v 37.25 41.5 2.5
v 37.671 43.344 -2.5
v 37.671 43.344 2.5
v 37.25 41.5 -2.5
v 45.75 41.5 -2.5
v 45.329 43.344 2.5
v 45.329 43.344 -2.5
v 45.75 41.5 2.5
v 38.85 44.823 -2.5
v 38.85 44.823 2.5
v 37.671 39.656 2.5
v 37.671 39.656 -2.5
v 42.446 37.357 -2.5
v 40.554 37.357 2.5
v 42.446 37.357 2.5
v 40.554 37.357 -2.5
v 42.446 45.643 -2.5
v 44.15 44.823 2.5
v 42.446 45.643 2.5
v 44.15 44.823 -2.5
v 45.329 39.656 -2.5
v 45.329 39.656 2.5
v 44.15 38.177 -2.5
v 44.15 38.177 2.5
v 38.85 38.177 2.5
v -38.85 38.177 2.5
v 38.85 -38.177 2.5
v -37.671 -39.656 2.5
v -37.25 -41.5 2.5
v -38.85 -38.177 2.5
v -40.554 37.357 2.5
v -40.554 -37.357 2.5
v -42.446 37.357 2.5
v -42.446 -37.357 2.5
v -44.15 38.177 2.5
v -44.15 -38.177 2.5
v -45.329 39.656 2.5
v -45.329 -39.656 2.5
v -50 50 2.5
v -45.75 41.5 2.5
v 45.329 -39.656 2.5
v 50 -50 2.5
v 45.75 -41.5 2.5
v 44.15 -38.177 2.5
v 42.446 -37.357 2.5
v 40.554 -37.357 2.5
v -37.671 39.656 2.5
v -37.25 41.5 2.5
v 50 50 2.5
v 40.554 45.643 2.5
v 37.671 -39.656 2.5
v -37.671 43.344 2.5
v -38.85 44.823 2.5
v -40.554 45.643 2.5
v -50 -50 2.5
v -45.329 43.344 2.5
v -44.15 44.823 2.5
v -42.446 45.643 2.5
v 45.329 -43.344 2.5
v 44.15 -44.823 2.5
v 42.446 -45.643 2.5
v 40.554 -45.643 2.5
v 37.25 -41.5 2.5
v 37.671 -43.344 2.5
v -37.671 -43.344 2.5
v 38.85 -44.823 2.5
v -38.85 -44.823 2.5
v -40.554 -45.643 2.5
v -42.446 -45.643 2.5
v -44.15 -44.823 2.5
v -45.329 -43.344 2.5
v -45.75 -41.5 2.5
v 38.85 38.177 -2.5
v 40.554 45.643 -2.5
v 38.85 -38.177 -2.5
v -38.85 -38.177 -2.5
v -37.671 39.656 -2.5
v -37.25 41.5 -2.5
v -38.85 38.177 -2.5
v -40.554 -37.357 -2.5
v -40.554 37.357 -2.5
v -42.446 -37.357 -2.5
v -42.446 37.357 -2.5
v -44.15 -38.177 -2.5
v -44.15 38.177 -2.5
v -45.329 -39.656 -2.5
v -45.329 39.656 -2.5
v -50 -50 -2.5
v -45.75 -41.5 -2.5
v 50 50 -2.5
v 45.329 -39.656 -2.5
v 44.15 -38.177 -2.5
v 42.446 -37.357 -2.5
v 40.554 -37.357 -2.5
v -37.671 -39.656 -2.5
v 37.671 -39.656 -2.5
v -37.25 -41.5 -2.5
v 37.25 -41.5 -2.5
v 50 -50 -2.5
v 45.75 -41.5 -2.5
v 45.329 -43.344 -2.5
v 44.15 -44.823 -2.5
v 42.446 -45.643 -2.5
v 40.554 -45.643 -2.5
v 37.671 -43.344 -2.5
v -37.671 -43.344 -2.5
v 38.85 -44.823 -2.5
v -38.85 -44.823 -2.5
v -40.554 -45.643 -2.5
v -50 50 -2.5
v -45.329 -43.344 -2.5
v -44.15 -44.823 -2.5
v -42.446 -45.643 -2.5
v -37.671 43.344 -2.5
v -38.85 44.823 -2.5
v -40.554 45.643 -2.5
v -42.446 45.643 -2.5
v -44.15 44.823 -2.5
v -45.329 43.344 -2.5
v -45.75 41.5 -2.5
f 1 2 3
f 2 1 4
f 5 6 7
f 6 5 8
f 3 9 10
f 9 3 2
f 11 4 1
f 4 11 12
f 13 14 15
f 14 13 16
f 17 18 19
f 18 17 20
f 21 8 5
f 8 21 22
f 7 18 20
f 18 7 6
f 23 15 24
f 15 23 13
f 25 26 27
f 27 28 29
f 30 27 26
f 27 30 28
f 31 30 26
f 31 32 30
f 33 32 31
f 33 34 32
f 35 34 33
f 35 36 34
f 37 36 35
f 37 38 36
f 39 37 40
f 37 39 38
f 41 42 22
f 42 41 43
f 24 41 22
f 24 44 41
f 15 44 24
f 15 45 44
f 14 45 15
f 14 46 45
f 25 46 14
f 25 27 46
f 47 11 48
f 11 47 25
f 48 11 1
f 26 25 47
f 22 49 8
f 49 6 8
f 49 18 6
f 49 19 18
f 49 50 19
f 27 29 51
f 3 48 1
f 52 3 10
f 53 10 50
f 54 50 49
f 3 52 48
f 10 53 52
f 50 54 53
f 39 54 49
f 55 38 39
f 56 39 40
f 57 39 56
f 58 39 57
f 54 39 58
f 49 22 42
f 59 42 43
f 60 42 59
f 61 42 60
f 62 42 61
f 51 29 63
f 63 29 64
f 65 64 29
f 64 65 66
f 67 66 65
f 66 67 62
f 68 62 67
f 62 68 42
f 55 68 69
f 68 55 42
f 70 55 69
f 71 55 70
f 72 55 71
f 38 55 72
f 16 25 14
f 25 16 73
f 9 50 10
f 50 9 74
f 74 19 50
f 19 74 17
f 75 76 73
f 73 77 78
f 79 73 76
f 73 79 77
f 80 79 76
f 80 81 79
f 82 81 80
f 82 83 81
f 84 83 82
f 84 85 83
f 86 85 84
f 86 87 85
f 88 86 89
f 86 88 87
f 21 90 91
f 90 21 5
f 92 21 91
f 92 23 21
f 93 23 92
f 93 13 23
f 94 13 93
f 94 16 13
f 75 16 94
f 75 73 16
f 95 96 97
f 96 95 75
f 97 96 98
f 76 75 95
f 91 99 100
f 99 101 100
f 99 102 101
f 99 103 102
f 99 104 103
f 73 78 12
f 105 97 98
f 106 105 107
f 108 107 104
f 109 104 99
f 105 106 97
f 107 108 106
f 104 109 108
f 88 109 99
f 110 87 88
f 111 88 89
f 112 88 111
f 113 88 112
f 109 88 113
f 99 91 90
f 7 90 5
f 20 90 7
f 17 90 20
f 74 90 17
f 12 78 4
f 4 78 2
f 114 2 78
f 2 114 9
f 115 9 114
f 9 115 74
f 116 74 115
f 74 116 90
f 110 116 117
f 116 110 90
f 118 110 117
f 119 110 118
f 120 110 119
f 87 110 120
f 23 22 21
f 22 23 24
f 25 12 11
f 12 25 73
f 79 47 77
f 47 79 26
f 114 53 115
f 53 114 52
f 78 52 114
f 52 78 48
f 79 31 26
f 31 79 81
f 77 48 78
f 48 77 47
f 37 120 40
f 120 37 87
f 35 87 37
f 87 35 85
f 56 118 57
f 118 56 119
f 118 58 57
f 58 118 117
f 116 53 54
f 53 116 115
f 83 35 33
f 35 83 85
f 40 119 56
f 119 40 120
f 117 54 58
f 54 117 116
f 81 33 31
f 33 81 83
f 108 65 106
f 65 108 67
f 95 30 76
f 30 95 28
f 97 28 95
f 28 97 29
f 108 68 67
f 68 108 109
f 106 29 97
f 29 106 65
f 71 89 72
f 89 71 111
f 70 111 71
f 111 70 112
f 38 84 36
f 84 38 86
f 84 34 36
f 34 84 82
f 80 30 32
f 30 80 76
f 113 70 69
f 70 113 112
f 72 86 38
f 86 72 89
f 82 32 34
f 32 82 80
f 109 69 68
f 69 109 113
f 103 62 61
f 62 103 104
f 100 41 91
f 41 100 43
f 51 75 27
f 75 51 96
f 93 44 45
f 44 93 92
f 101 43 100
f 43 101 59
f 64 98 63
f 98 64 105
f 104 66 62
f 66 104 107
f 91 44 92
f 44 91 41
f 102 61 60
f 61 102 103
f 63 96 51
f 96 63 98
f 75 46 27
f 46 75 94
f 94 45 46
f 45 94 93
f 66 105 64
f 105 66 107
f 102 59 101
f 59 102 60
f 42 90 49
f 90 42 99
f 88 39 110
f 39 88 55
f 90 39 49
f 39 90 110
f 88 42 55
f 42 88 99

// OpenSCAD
// Generated by SolidPython 1.1.3 on 2023-10-18 16:19:57


difference() {
	cube(center = true, size = [100, 100, 5]);
	union() {
		translate(v = [41.5000000000, 41.5000000000]) {
			cylinder(center = true, h = 5, r = 4.2500000000);
		}
		translate(v = [-41.5000000000, 41.5000000000]) {
			cylinder(center = true, h = 5, r = 4.2500000000);
		}
		translate(v = [-41.5000000000, -41.5000000000]) {
			cylinder(center = true, h = 5, r = 4.2500000000);
		}
		translate(v = [41.5000000000, -41.5000000000]) {
			cylinder(center = true, h = 5, r = 4.2500000000);
		}
	}
}
/***********************************************
*********      SolidPython code:      **********
************************************************
 
import solid
import numbers
import pudb
from solid.utils import *
import viewscad
import subprocess
import os
import os.path as osp
import math
import sys

chamfer_extrude=solid.import_scad("./chamfer_extrude.scad")
chamfer_extrude=chamfer_extrude.chamfer_extrude
r = viewscad.Renderer(width=800, height=800)

def debug(model,f_name,path="/home/ts/code/projects/mfd/designs/debug"):
    solid.scad_render_to_file(model,osp.join(path,f_name)+".scad")
#generate position list of wells using offset from center
wells_pos_from_center_4 = lambda offset: [[-offset,offset],
                                        [offset, offset],
                                        [-offset, -offset],
                                        [offset, -offset]]
#wells_pos_from_center_2 = lambda offset: [[0,offset],
#                                        [0, -offset]]
wells_pos_from_center_2 = lambda offset: [[offset,0],
                                        [-offset,0]]

def make_well(dims,shape=None,height=None,dxf=False):
    def circle_cylinder():
        if dxf or (height is None):
            well = solid.circle(r=dims, segments=64)
        else:
            well = solid.cylinder(r=dims, h=height, segments=64, center = True)
        return well
    if dims is None:
        sys.exit("radius needs to be a number")
    if isinstance(dims, numbers.Number):
        well =circle_cylinder()
    elif len(dims)==1:
        if isinstance(dims[1], numbers.Number):
            well =circle_cylinder()
        else:
            sys.exit("radius needs to be a number")
    elif len(dims)==2:
        well = solid.square(dims,center = True)
    elif len(dims)==3:
        well = solid.cube(dims, center = True)
    return well

def wells_top_bottom(center_gap,device_dims=None,shape=None,height=None, positions = None, dxf = False,well_shape=None):
    if well_shape == None:
        well_shape = make_well(device_dims,shape=shape,height=height,dxf=dxf)
    wells = []
    if positions is None:
        offset = radius+radius/2.0
        positions = wells_pos_from_center_2(offset)
    if dxf or (height is None):
        height = 0
    for position in positions:
        if dxf:
            wells.append(solid.translate([position[0],position[1]])(well_shape))
        else:
            wells.append(solid.translate([position[0],position[1],height/2.0])(well_shape))
    return  union()(*wells)

#place wells in four corners 
def four_corner(radius,height=None, positions = None, dxf = False):
    #if well pos not specified set
    #to equally spaced by half radius
    if positions is None:
        offset = radius+radius/2.0
        positions = wells_pos_from_center_4(offset)
    if dxf or (height is None):
        height = 0
    #make wells at positions with specified radius and height
    wells = []
    for position in positions:
        #make circle if making dxf
        if dxf:
            well_shape = solid.circle(r=radius, segments=64)
            well_shape = solid.translate([position[0],position[1]])(well_shape)
        #if stl make cylinder
        else:
            well_shape = solid.cylinder(r=radius, h=height, segments=64, center = True)
            well_shape = solid.translate([position[0],position[1],height/2.0])(well_shape)
        wells.append(well_shape)
    return  union()(*wells)

#generate channels 
def make_channels(length,width,height=0,num_chans=1,max_chans=None,spacing=None, dxf = False,
                  rotate_channels=False):
    if dxf or (height is None):
        height = 0
    #if channel gap not defined, is equal to
    if spacing is None: spacing = width
    #calculate number of channels if fitting max num within given width
    if not max_chans is None:
        import math
        num_chans = math.floor((max_chans-spacing)/(width+spacing))
    #get total width of channel section  
    total_width = (width*num_chans)+(spacing*(num_chans-1))

    #make template channel
    #if rotate_channels: width, length = length, width
    if dxf:
        channel_t = solid.square([length,width],center = True)
    else:
        channel_t = solid.cube([length,width,height], center = True)

    #if number channels is even, offset the first channel to center its gap
    if num_chans % 2 == 0: centering = -(width/2.0+spacing/2.0)
    else: centering = 0
    #move template channel up to align bottom at z = 0 
    #and offset center if necessary
    if dxf:
        channel_t = solid.translate([0,centering])(channel_t)
    else:
        channel_t = solid.translate([0,centering,height/2.0])(channel_t)

    #if rotate_channels: length,width = width,length
    #start making the channels
    channels = []
    for i in range(num_chans):
        #if i=0 there is no translation
        #if i=1, we make the first channel adjacent to second
        direction = i

        #if i>=1, we add channels alternating left and right
        if i >= 1:
            direction = -(i/2.0)
            if i % 2 == 1: direction = (-direction)+0.5
                
        #make channel at right position and add it to channel list
        translation_coords = [0,direction*(width+spacing)]
        #if rotate_channels: translation_coords = [direction*(width+spacing),0]
        if dxf:
            channel = solid.translate(translation_coords)(channel_t)
        else:
            channel = solid.translate([*translation_coords,0])(channel_t)
        channels.append(channel)
    
    #group all channels as one object
    channels = union()(*channels)
    #compute the x,y,z dimensions in order to pass as arguments 
    #for construction of other parts of device (such as the chambers)
    measurements = {'x':(length/2.0,-length/2.0),
                    'y':(total_width/2.0,-total_width/2.0)}
    if not dxf:
        measurements['z'] = (height,0)
    if rotate_channels:
        channels = solid.rotate(90)(channels)
        measurements['x'],measurements['y']=measurements['y'],measurements['x']
    return channels,measurements

def make_chambers(msrs,height=None,extra=0,len_until=None,width=None, dxf = False):
    #computes x,y,z length
    total = lambda x : abs(x[0]) + abs(x[1])
    
    #if specific height if specified
    #otherwise use same height as channels
    if dxf:
        pass
    elif not height is None:
        msrs['z'] = (height,0)
    else:
        msrs['z'] = (0,0)
        
    #make copy of measurements from channels to modify chamber dimensions 
    #and add length to chambers as specified
    chamber_dims = msrs.copy()
    #calculate length of chamber to reach specified offset
    if not len_until is None:
        chamber_len = len_until-(msrs['x'][0])
    #or add specified length to channel length (if not specified, adds 0)
    else:
        chamber_len = msrs['x'][0]+extra
    #set the chamber length based 
    chamber_dims['x'] = (chamber_len/2.0,-(chamber_len/2.0))
    #compute final dimensions of chamber
    if not width is None:
        chamber_dims['y'] = (width/2.0,-width/2.0)
    chamber_dims = [total(size) for size in chamber_dims.values()]
        
    #calculate chamber translation offset to place adjacent to channels
    chamber_trslt = msrs['x'][0]+(chamber_len/2.0)
    #compute chamber translation coordinates to align with channels
    #x = 1 moves chamber above channels
    #x = -1 moves chamber below channels
    if dxf:
        trslt = lambda x : [x*(chamber_trslt),0]
    else:
        trslt = lambda x : [x*(chamber_trslt),0,msrs['z'][0]/2.0]
    
    #function to make chamber at top or at bottom 
    if dxf:
        move = lambda x : solid.translate(trslt(x))(solid.square(chamber_dims, center = True) )
    else:
        move = lambda x : solid.translate(trslt(x))(solid.cube(chamber_dims,center = True))
    #make top and bottom chambers and return them as grouped
    top = move(1)
    bottom = move(-1)
    #chambers=solid.rotate(90)(solid.union()(top,bottom))
    chambers=(solid.union()(top,bottom))

    return chambers

#create alignment features 
def alignment_features(unit,dims,grid_size, mask_size = None, alignment = "hollow", units_from_center = (2.5,2.5), corner_len=None):
    width = grid_size[0]*dims[0]
    length = grid_size[1]*dims[1]
    if mask_size is None and corner_len is None:
        corner_len = (dims[0] + dims[1]) /2 / 8
    corner = lambda thickness_div : solid.union()( solid.square([corner_len,corner_len/thickness_div],center=False), solid.square([corner_len/thickness_div,corner_len],center=False) )
    
    def make_full(thickness_div):
        thickness = corner_len/thickness_div
        tr = solid.translate([0, 0, 0 ])(solid.rotate(180)(corner(thickness_div)))
        tr = solid.translate([thickness/2,thickness/2,0])(tr)
        bl = solid.translate([0, 0, 0 ])(solid.rotate(0)(corner(thickness_div)))
        bl = solid.translate([-thickness/2,-thickness/2,0])(bl)
        return solid.union()(tr,bl)
    
    def make_hollow(thickness_div):
        thickness = corner_len/(thickness_div/2)
        inner = make_full(thickness_div)
        outer = make_full(thickness_div/2)
        hollow = outer - inner 
        return hollow
    
    center = (width /2 , length/2)
    mask_pos = lambda x,y : (center[0] + x*(float(units_from_center[0])*dims[0]), center[1] + y*(float(units_from_center[1])*dims[1]))
    positions = []
    positions.append(mask_pos(1,0))
    positions.append(mask_pos(0,1))
    positions.append(mask_pos(-1,0))
    positions.append(mask_pos(0,-1))
    make_mask = lambda mtype : make_hollow(8) if mtype == "hollow" else make_full(8)
    masks = [ solid.translate([*position,0])(make_mask(alignment)) for position in positions]
    
    solid.scad_render_to_file(solid.union()(*masks),"./designs/open_chamber/masks.scad")
    #return unit - solid.union()(*masks)
    return solid.union()(*masks,unit)

def create_outline(thickness, array, dims, grid_size,):
    width = grid_size[0]*dims[0] + thickness *2
    length = grid_size[1]*dims[1] + thickness *2
    outer = solid.translate([-thickness, -thickness,0])(solid.square([width, length]))
    return outer-array

def create_wall(wall_thickness, outline_thickness, dims, grid_size, wall_height = 2000, dxf = False):
    inner_width = grid_size[0]*dims[0] + outline_thickness *2
    inner_length = grid_size[1]*dims[1] + outline_thickness *2
    outer_width = inner_width + wall_thickness * 2
    outer_length = inner_length + wall_thickness * 2
    outer_pos_x = -outline_thickness-wall_thickness
    outer_pos_y = -outline_thickness-wall_thickness
    inner_pos_x = -outline_thickness
    inner_pos_y = -outline_thickness
    if dxf:
        inner_wall = solid.translate([inner_pos_x,
                                      inner_pos_y,
                                      0])(solid.square([inner_width, inner_length]))
        outer_wall = solid.translate([outer_pos_x,
                                      outer_pos_y,
                                      0])(solid.square([outer_width, outer_length]))

        return outer_wall-inner_wall
    else:
        inner_wall = solid.translate([inner_pos_x,
                                      inner_pos_y,
                                      0])(solid.cube([inner_width, inner_length,wall_height]))
        outer_wall = solid.translate([outer_pos_x,
                                      outer_pos_y,
                                      0])(solid.cube([outer_width, outer_length,wall_height]))

        return outer_wall-inner_wall, {'wall_height': wall_height,
                                       'wall_thickness': wall_thickness,
                                       'inner_width':inner_width,
                                       'inner_length': inner_length,
                                       'outer_width': outer_width,
                                       'outer_length': outer_length,
                                       'outer_pos_x' : outer_pos_x,
                                       'outer_pos_y' : outer_pos_y,
                                       'inner_pos_x' : inner_pos_x,
                                       'inner_pos_y' : inner_pos_y}

def create_thicker_wall(wall_thickness, outer_wall_offset, wall_dims, dims, grid_size, height_start = .2, height_end=2, dxf = False):
    addon_wall,thicker_wall_dims = create_wall(wall_thickness, outer_wall_offset, dims, grid_size, wall_height=height_end-height_start, dxf = False)
    addon_wall = solid.translate([0,0,height_start])(addon_wall)

    thicker_wall_dims['wall_height'] = height_end
    thicker_wall_dims['wall_thickness'] = wall_dims['wall_thickness'] + wall_thickness
    return addon_wall, thicker_wall_dims
 
def add_lock_to_wall(wall,wall_dims,y_offset = 0,cut_ratio=0.7,L_length=3, gap_ratio=0.05, axis="x",width_ratio=1/2):
    # Makes L shape
    def make_L(max_length,length_thickness,max_width,width_thickness,height,y_offset):
        length = solid.cube([max_length,length_thickness,height])
        width = solid.cube([width_thickness,max_width,height])
        width = solid.translate([max_length-(width_thickness),0,0])(width)
        L = solid.union()(width,length)
        debug(L,"L")
        if axis == "x":
            L = solid.rotate(-90)(L)
            L = solid.translate([0,max_length,0])(L)
        else:
            L = solid.rotate(-180)(L)
            L = solid.translate([max_length,max_width,0])(L)
        return solid.translate([0,0,y_offset])(L)
    
    lock_length = L_length
    lock_width = wall_dims['wall_thickness']*width_ratio
    lock_length_thickness = lock_width/2
    lock_width_thickness = lock_width/2
    L_lock = make_L(lock_length,lock_length_thickness,lock_width,lock_width_thickness, wall_dims['wall_height']-y_offset, y_offset)
    
    margin_space = lock_length - lock_length*(1-gap_ratio)
    key_length = lock_length-margin_space
    key_length_thickness = lock_length_thickness-(margin_space*2)
    key_width = lock_width-(margin_space*2)
    key_width_thickness = lock_width_thickness-(margin_space*2)
    L_key = make_L(key_length,key_length_thickness,key_width,key_width_thickness, wall_dims['wall_height']-y_offset, y_offset)
    L_key = solid.translate([margin_space,margin_space,0])(L_key)
    L = solid.union()(L_lock,L_key)
    debug(L,"L")
    
    #Make cube to be used as negative to split frame in a half
    #Can choose if making left or right negative, specify ratio of split
    def make_negative(right,cut_ratio):
        if axis == "x":
            if right:
                length = wall_dims['outer_length']*(1-cut_ratio)
                pos_x = wall_dims['outer_pos_x']+(wall_dims['outer_length']*cut_ratio)
            else:
                length = wall_dims['outer_length']*(cut_ratio)
                pos_x = wall_dims['outer_pos_x'] 
            negative = solid.cube([wall_dims['outer_width'],length, wall_dims['wall_height']])
            negative = solid.translate([wall_dims['outer_pos_y'],pos_x,0])(negative)
        else:
            if right:
                length = wall_dims['outer_width']*(1-cut_ratio)
                pos_x = wall_dims['outer_pos_y']+(wall_dims['outer_width']*cut_ratio)
            else:
                length = wall_dims['outer_width']*(cut_ratio)
                pos_x = wall_dims['outer_pos_y'] 
            negative = solid.cube([length,wall_dims['outer_length'], wall_dims['wall_height']])
            negative = solid.translate([pos_x,wall_dims['outer_pos_x'],0])(negative)
        return negative, pos_x, length 
                      
    #Make negatives
    negative_right, right_half_pos_x, right_half_length = make_negative(True,cut_ratio)
    negative_left, left_half_pos_x, right_half_length = make_negative(False,cut_ratio)
    #Make halves
    left_half = solid.difference()(wall,negative_right)
    right_half = solid.difference()(wall,negative_left)
    def place_L(L, L_length,L_width):
        #Place L on top wall       
        offset_to_center = (wall_dims['wall_thickness']-L_width)/2
        if axis == "x":
            y_pos_top = (wall_dims['outer_pos_y'] +
                    wall_dims['outer_width'] - 
                    L_width - offset_to_center)
            top_L = solid.translate([y_pos_top,
                                     right_half_pos_x-(L_length),
                                     0])(L)
            #Place L on bottom wall       
            y_pos_bottom = wall_dims['outer_pos_y']+offset_to_center
            bottom_L = solid.translate([y_pos_bottom,
                                        right_half_pos_x-L_length,
                                        0])(L)
        else:
            y_pos_top = (wall_dims['outer_pos_x'] +
                    wall_dims['outer_length'] -
                    (L_width+offset_to_center))
            top_L = solid.translate([right_half_pos_x-L_length,
                                     y_pos_top,
                                     0])(L)
            #Place L on bottom wall       
            y_pos_bottom = wall_dims['outer_pos_y']+offset_to_center
            bottom_L = solid.translate([right_half_pos_x-L_length,
                                        y_pos_bottom,
                                        0])(L)
        return bottom_L, top_L
    #Make complimentary L pieces through union and differences
    #Make Lock
    bottom_L_lock, top_L_lock = place_L(L_lock,L_length,lock_width)
    left_half = solid.difference()(left_half,bottom_L_lock)
    left_half = solid.difference()(left_half,top_L_lock)
    #Make Key
    bottom_L_key, top_L_key = place_L(L_key,L_length,lock_width)
    right_half = solid.union()(right_half,bottom_L_key)
    right_half = solid.union()(right_half,top_L_key)
    return left_half, right_half


#build a row x col grid of containment units
def make_unit_array(unit,dims,grid_size, dxf = False, alignment = None, mask_size = None,
                    units_from_center = None,alignment_offset=None, alignment_mark_size=1):
    units = []
    for col in range(grid_size[1]):
        for row in range(grid_size[0]):
            if dxf:
                units.append(solid.translate([row*dims[0],col*dims[1]])(unit))
            else:
                units.append(solid.translate([row*dims[0],col*dims[1],dims[2]/2.0])(unit))
    array = solid.union()(*units)
    if (not alignment is None) and dxf:
        if not alignment_offset is None:
            array = solid.translate([alignment_offset[0],alignment_offset[1]])(array)
        array = alignment_features(array,dims, grid_size, alignment = alignment, mask_size = None, units_from_center = units_from_center,corner_len=alignment_mark_size)
        if not alignment_offset is None:
            array = solid.translate([-alignment_offset[0],-alignment_offset[1]])(array)
    return array


def make_taylor(wells_pos = wells_pos_from_center_4(2.25), well_rad = 1.5 ,
                well_height = 2, chan_w = 0.01, chan_l = 1, chan_h = 0.010 ,
                chan_gap = 0.040, max_chans = None,num_chans=100, chamber_height  = 0.100,
                columns = 1, rows = 1, chamber_len_until=2.25, add_channels = True, add_wells = True, 
                add_chambers = True, save_path = "./", alignment = None, units_from_center = 2,
                mask_size = None, render_stl = False, outline_thickness = 0.050, dxf = True,
                wall_height = 15, wall_thickness = 0.95, casing_x=9, casing_y=9, casing_z=0,rotate_units=0):

    dims = [casing_x, casing_y, casing_z]
    wells = four_corner(well_rad,well_height, dxf = dxf, positions = wells_pos)
    debug(wells,"wells")
    channels, msrs = make_channels(chan_l,chan_w,chan_h,dxf=dxf, spacing = chan_gap, max_chans=max_chans,num_chans=num_chans)
    debug(channels,"channels")
    chambers = make_chambers(msrs,dxf = dxf, height=chamber_height,len_until=chamber_len_until)
    debug(chambers,"chambers")

    #add together and render
    device_parts = []
    if add_channels:
        device_parts.append(channels)
    if add_wells:
        device_parts.append(wells)
    if add_chambers:
        device_parts.append(chambers)
    device=union()(*device_parts)
    device = rotate(rotate_units)(device)

    device=solid.translate([dims[0]/2.0,dims[1]/2.0,0])(device)
    channels = rotate(rotate_units)(channels)
    channels=solid.translate([dims[0]/2,dims[1]/2,0])(channels)
    chambers_wells = union()(wells,chambers)
    chambers_wells = rotate(rotate_units)(chambers_wells)
    chambers_wells=solid.translate([dims[0]/2,dims[1]/2,0])(chambers_wells)

    file_name = str(rows)+'x'+str(columns)+'_units_'
    grid_size = [rows,columns]

    if alignment:
        alignment="full"
    device = make_unit_array(device,dims,grid_size, dxf=dxf, alignment = alignment,
                                 units_from_center = units_from_center)
    channels = make_unit_array(channels,dims,grid_size, dxf=dxf, alignment = alignment,
                                 units_from_center = units_from_center)
    if alignment=="full":
        alignment="hollow"

    chambers_wells = make_unit_array(chambers_wells,dims,grid_size, dxf=dxf, alignment = alignment,
                                 units_from_center =units_from_center)

    def save_model(model,prefix):
        model_fname = os.path.abspath(save_path+prefix+"_"+file_name+".scad")
        solid.scad_render_to_file(model,model_fname)
        return model_fname

    wells_fname = save_model(wells,"wells")
    channels_fname = save_model(channels,"channels")
    device_fname = save_model(device,"device")
    chambers_wells_fname = save_model(chambers_wells,"chambers_wells")
    return (chambers_wells,chambers_wells_fname), (channels,channels_fname), (device,device_fname)

def make_device(design='open',rows=8,columns=6,wells_pos = 4.5,well_offset=3.2, well_rad=3.2,well_height=0.1,
                chan_l=1,chan_w=0.01,chan_h=0.01,chan_gap=0.015,num_chans=101,dxf=True,save_path="./designs/open_chamber/",
                casing_x=9.0,casing_y=18.0,casing_z=0,rotate_units=90,units_from_center=(3,1),chamber_len_until=4.5,
                chamber_width=None,alignment=True, add_wells=True, add_channels=True,add_chambers=True,well_shape=None):

    dims = [casing_x, casing_y, casing_z]
    if design == "open":
        wells_pos=wells_pos_from_center_2(wells_pos)
        wells = wells_top_bottom(well_offset*2,device_dims=well_rad,height=well_height, dxf = dxf, positions = wells_pos,well_shape=well_shape)
    elif design == "closed":
        wells_pos=wells_pos_from_center_4(wells_pos)
        debug(wells,"wells")
        wells = four_corner(well_offset,well_height,device_dims=well_rad, dxf = dxf, positions = wells_pos)
    else:
        print(design+" is not a valid design.\n Choose valid design: 'open' or 'closed'")
        exit()
    wells = rotate(rotate_units)(wells)
    wells=solid.translate([dims[0]/2,dims[1]/2,0])(wells)
    debug(wells,"wells")

    channels, msrs = make_channels(chan_l,chan_w,chan_h,dxf=dxf, spacing = chan_gap, num_chans=num_chans,rotate_channels=False)
    channels = rotate(rotate_units)(channels)
    channels=solid.translate([dims[0]/2,dims[1]/2,0])(channels)

    chambers=make_chambers(msrs,height=None,extra=0,len_until=chamber_len_until, width=chamber_width,dxf = dxf)
    chambers = rotate(rotate_units)(chambers)
    chambers=solid.translate([dims[0]/2,dims[1]/2,0])(chambers)

    device_parts = []
    if add_channels:
        device_parts.append(channels)
    if add_wells:
        device_parts.append(wells)
    if add_chambers:
        device_parts.append(chambers)
    device = union()(*device_parts)
    #device = rotate(rotate_units)(device)
    #device=solid.translate([dims[0]/2.0,dims[1]/2.0,0])(device)

    chambers_wells = []
    if add_chambers:
        chambers_wells.append(chambers)
    if add_wells:
        chambers_wells.append(wells)
    chambers_wells = union()(*chambers_wells)
    #chambers_wells = union()(wells,chambers)
    #chambers_wells = rotate(rotate_units)(chambers_wells)
    #chambers_wells=solid.translate([dims[0]/2,dims[1]/2,0])(chambers_wells)

    file_name = str(rows)+'x'+str(columns)+'_units_'

    grid_size = [rows,columns]
    if alignment:
        alignment="full"
    device = make_unit_array(device,dims,grid_size, dxf=dxf, alignment = alignment,
                                 units_from_center = units_from_center)
    channels = make_unit_array(channels,dims,grid_size, dxf=dxf, alignment = alignment,
                                 units_from_center = units_from_center)
    if alignment=="full":
        alignment="hollow"

    chambers_wells = make_unit_array(chambers_wells,dims,grid_size, dxf=dxf, alignment = alignment,
                                 units_from_center =units_from_center)

    def save_model(model,prefix):
        model_fname = os.path.abspath(save_path+prefix+"_"+file_name+".scad")
        solid.scad_render_to_file(model,model_fname)
        return model_fname

    wells_fname = save_model(wells,"wells")
    channels_fname = save_model(channels,"channels")
    device_fname = save_model(device,"device")
    chambers_wells_fname = save_model(chambers_wells,"chambers_wells")
    return (chambers_wells,chambers_wells_fname), (channels,channels_fname), (device,device_fname)


def make_open_chamber(rows=8,columns=6,wells_pos = wells_pos_from_center_2(4.5), well_rad=3.2,well_height=0.1,
                      chan_l=1,chan_w=0.01,chan_h=0.01,chan_gap=0.015,num_chans=101,dxf=True,save_path="./designs/open_chamber/",
                      casing_x=9.0,casing_y=18.0,casing_z=0,rotate_units=90,units_from_center=(3,1),chamber_len_until=4.5,
                      chamber_width=None,alignment=True, add_wells=True, add_channels=True,add_chambers=True,well_shape=None):

    dims = [casing_x, casing_y, casing_z]
    wells = wells_top_bottom(well_rad,height=well_height, dxf = dxf, positions = wells_pos, well_shape=well_shape)
    channels, msrs = make_channels(chan_l,chan_w,chan_h,dxf=dxf, spacing = chan_gap, num_chans=num_chans,rotate_channels=False)
    chambers=make_chambers(msrs,height=None,extra=0,len_until=chamber_len_until, width=chamber_width,dxf = dxf)
    debug(chambers,"chambers")
    device_parts = []
    if add_channels:
        device_parts.append(channels)
    if add_wells:
        device_parts.append(wells)
    if add_chambers:
        device_parts.append(chambers)
    device = union()(*device_parts)
    device = rotate(rotate_units)(device)
    device=solid.translate([dims[0]/2.0,dims[1]/2.0,0])(device)
    channels = rotate(rotate_units)(channels)
    channels=solid.translate([dims[0]/2,dims[1]/2,0])(channels)
    chambers_wells = union()(wells,chambers)
    chambers_wells = rotate(rotate_units)(chambers_wells)
    chambers_wells=solid.translate([dims[0]/2,dims[1]/2,0])(chambers_wells)

    file_name = str(rows)+'x'+str(columns)+'_units_'

    grid_size = [rows,columns]
    if alignment:
        alignment="full"
    device = make_unit_array(device,dims,grid_size, dxf=dxf, alignment = alignment,
                                 units_from_center = units_from_center)
    channels = make_unit_array(channels,dims,grid_size, dxf=dxf, alignment = alignment,
                                 units_from_center = units_from_center)
    if alignment=="full":
        alignment="hollow"

    chambers_wells = make_unit_array(chambers_wells,dims,grid_size, dxf=dxf, alignment = alignment,
                                 units_from_center =units_from_center)

    def save_model(model,prefix):
        model_fname = os.path.abspath(save_path+prefix+"_"+file_name+".scad")
        solid.scad_render_to_file(model,model_fname)
        return model_fname

    wells_fname = save_model(wells,"wells")
    channels_fname = save_model(channels,"channels")
    device_fname = save_model(device,"device")
    chambers_wells_fname = save_model(chambers_wells,"chambers_wells")
    return (chambers_wells,chambers_wells_fname), (channels,channels_fname), (device,device_fname)

def to_dxf(scad_path):
    dxf_path = scad_path.replace(".scad",".dxf")
    subprocess.call(["openscad", "-o", dxf_path, scad_path])
    import ezdxf
    temp_dxf = ezdxf.readfile(dxf_path)
    temp_dxf.saveas(dxf_path)

#def make_walls(diameter,thickness,grid_size,dims,height=20,segments=256,make_inner=True):
#    wafer_wall_out = solid.cylinder(r=diameter/2,h=height, segments=segments)
#    wafer_wall_in = solid.cylinder(r=(diameter/2-thickness),h=height, segments=segments)
#    wafer_wall = solid.difference()(wafer_wall_out,wafer_wall_in)
#    wafer_wall = solid.translate([grid_size[1]*dims[1]/2.0,grid_size[0]*dims[0]/2.0])(wafer_wall)
#
#    vertical_wall_length = grid_size[1]*dims[1]
#    horizontal_wall_length = grid_size[0]*dims[0]
#    vertical_wall = solid.cube([vertical_wall_length,thickness,height],center = True)
#    vertical_wall = solid.translate([vertical_wall_length/2,0,height/2])(vertical_wall)
#    horizontal_wall = solid.cube([thickness,horizontal_wall_length,height],center = True)
#    horizontal_wall = solid.translate([0,vertical_wall_length/2,height/2])(horizontal_wall)
#    walls = []
#    walls.append(horizontal_wall)
#    walls.append(vertical_wall)
#    for col in range(grid_size[1]):
#        if col == grid_size[1]-1: 
#            walls.append(solid.translate([0,(col+1)*dims[1]])(vertical_wall))
#        elif col > 0 and col < grid_size[1]-1 and make_inner==True:
#            walls.append(solid.translate([0,(col+1)*dims[1]])(vertical_wall))
#    for row in range(grid_size[0]):
#        if row == grid_size[0]-1: 
#            walls.append(solid.translate([(row+1)*dims[0],0])(horizontal_wall))
#        elif row > 0 and row < grid_size[0]-1 and make_inner==True:
#            walls.append(solid.translate([(row+1)*dims[0],0])(horizontal_wall))
#    walls = union()(*walls)
#    wafer_walls = union()(walls,wafer_wall)
#    return walls,wafer_wall,wafer_walls

def make_walls(diameter,thickness,grid_size,dims,height=20,segments=256,make_inner=True,padx=0,pady=0):
    wafer_wall_out = solid.cylinder(r=diameter/2,h=height, segments=segments)
    wafer_wall_in = solid.cylinder(r=(diameter/2-thickness),h=height, segments=segments)
    wafer_wall = solid.difference()(wafer_wall_out,wafer_wall_in)
    wafer_wall = solid.translate([grid_size[1]*dims[1]/2.0,grid_size[0]*dims[0]/2.0])(wafer_wall)

    vertical_wall_length = grid_size[0]*dims[0]+padx
    horizontal_wall_length = grid_size[1]*dims[1]+pady
    vertical_wall = solid.cube([vertical_wall_length,thickness,height],center = True)
    vertical_wall = solid.translate([vertical_wall_length/2-pady/2,-padx/2,height/2])(vertical_wall)
    horizontal_wall = solid.cube([thickness,horizontal_wall_length,height],center = True)
    horizontal_wall = solid.translate([-pady/2,horizontal_wall_length/2-padx/2,height/2])(horizontal_wall)
    walls = []
    walls.append(horizontal_wall)
    walls.append(vertical_wall)
    for col in range(grid_size[1]):
        if col == grid_size[1]-1: 
            walls.append(solid.translate([0,(col+1)*dims[1]+pady])(vertical_wall))
        elif col > 0 and col < grid_size[1]-1 and make_inner==True:
            walls.append(solid.translate([0,(col+1)*dims[1]])(vertical_wall))
    for row in range(grid_size[0]):
        if row == grid_size[0]-1: 
            walls.append(solid.translate([(row+1)*dims[0]+padx,0])(horizontal_wall))
        elif row > 0 and row < grid_size[0]-1 and make_inner==True:
            walls.append(solid.translate([(row+1)*dims[0],0])(horizontal_wall))
    walls = union()(*walls)
    wafer_walls = union()(walls,wafer_wall)
    return walls,wafer_wall,wafer_walls

def save_model(model,base_path,base_name,dxf=True):
    if not os.path.exists(base_path):
        os.makedirs(base_path)
    dxf_path=osp.join(base_path,base_name+".scad")
    solid.scad_render_to_file(model,osp.join(dxf_path))
    if dxf:
        to_dxf(dxf_path)

def make_wafer(diameter,flat_len,thickness):
    wafer = solid.cylinder(r1=diameter/2,r2=diameter/2,h=thickness,segments=512,)()
    x_start_flat=(flat_len/2)
    y_start_flat = math.sqrt(((diameter/2)**2) - (x_start_flat**2) )
    height_delete_flat=diameter/2-y_start_flat
    flat_delete = solid.cube([flat_len,height_delete_flat,thickness],center=False)()
    flat_delete = solid.translate([-flat_len/2,y_start_flat,0])(flat_delete)
    wafer = solid.difference()(wafer,flat_delete)
    wafer = solid.rotate(90)(wafer)
    return wafer

def add_wafer_to_mask(wafer_size,flat_len,mask,grid_size,dims,wafer_line_thickness=0.1,outer_mask_thickness=5,alignment_offset=None):
    def make_wafer_mask(wafer_size,flat_len):
        wafer_mask = make_wafer(wafer_size,flat_len,1)
        wafer_mask = solid.projection()(wafer_mask)
        wafer_mask = solid.translate([grid_size[0]*dims[0]/2.0,grid_size[1]*dims[1]/2.0])(wafer_mask)
        if not alignment_offset is None:
            wafer_mask = solid.translate([-alignment_offset[0],-alignment_offset[1]])(wafer_mask)
        return wafer_mask

    inner_wafer_line_mask = make_wafer_mask(wafer_size-wafer_line_thickness/2,flat_len)
    outer_wafer_line_mask = make_wafer_mask(wafer_size+wafer_line_thickness/2,flat_len)
    outer_wafer_mask = make_wafer_mask(wafer_size+outer_mask_thickness,flat_len)
    outer_wafer_mask = solid.difference()(outer_wafer_mask,outer_wafer_line_mask)
    wafer_mask = solid.union()(outer_wafer_mask,inner_wafer_line_mask)

    return solid.difference()(wafer_mask,mask)

def make_posts(post_shape,post_height):
    posts = solid.linear_extrude(height=post_height)(post_shape)
    return posts

def make_wafer_empty(diameter,flat_len,thickness,margin,notch_len=20,notch_height=5,oversize=1.01):
    diameter*=oversize
    flat_len*=oversize
    wafer = make_wafer(diameter,flat_len,thickness)
    holder = solid.cylinder(r1=diameter/2+margin,r2=diameter/2+margin,h=thickness,segments=512)()
    holder = solid.difference()(holder,wafer)

    x_start_flat=(flat_len/2)
    y_start_flat = math.sqrt(((diameter/2)**2) - (x_start_flat**2) )
    height_delete_flat=diameter/2-y_start_flat
    notch = solid.cube([notch_len,notch_height,thickness],center=False)()
    notch = solid.translate([-notch_len/2,y_start_flat,0])(notch)
    notch = solid.rotate(90)(notch)
    return solid.difference()(holder,notch)

def wafer_print_calibration(diameter,thickness,height,z_offset):
    circles = []
    radii = []
    radii.append(diameter/2.0*0.8)
    radii.append(diameter/2.0*0.6)
    radii.append(diameter/2.0*0.4)
    radii.append(diameter/2.0*0.2)
    for radius in radii:
        inner = solid.cylinder(r1=radius-(thickness/2.0),r2=radius-(thickness/2.0),h=thickness,segments=512,)()
        outer = solid.cylinder(r1=radius+(thickness/2.0),r2=radius+(thickness/2.0),h=thickness,segments=512,)()
        diff = solid.difference()(outer,inner)
        circles.append(diff)
    circles = solid.union()(*circles)
    circles = solid.translate([0,0,z_offset])(circles)
    return circles

def make_rack(wells,dims,grid_size,alignment_offset,rack_x,rack_y,rack_thickness,bolt_width,add_bolts=True):

    #get X and Y dimensions of gride of pipette tips
    X_len = dims[0]*grid_size[0]
    Y_len = dims[1]*grid_size[1]
    #make rack
    rack = solid.cube([rack_x,rack_y,rack_thickness],center=True)

    if add_bolts:
    #add bolt holes
        bolt_hole=solid.cylinder(r=bolt_width/2,h=rack_thickness,center=True)()
        bolt_holes = []
        bolt_holes.append(solid.translate([rack_x/2-1.5*bolt_width,rack_y/2-1.5*bolt_width])(bolt_hole))
        bolt_holes.append(solid.translate([-rack_x/2+1.5*bolt_width,rack_y/2-1.5*bolt_width])(bolt_hole))
        bolt_holes.append(solid.translate([-rack_x/2+1.5*bolt_width,-rack_y/2+1.5*bolt_width])(bolt_hole))
        bolt_holes.append(solid.translate([rack_x/2-1.5*bolt_width,-rack_y/2+1.5*bolt_width])(bolt_hole))
        bolt_holes = solid.union()(*bolt_holes)
        rack=solid.difference()(rack,bolt_holes)
    rack_support = rack

    #center rack with pipette holes
    rack = solid.translate([0,0,rack_thickness/2])(rack)
    rack = solid.translate([X_len/2,Y_len/2])(rack)
    rack = solid.translate([-alignment_offset[0],-alignment_offset[1]])(rack)
    wells = solid.linear_extrude(height=rack_thickness)(wells)
    rack = solid.difference()(rack,wells)
    return rack, rack_support

def make_pillar(wells,dims,grid_size,alignment_offset,rack_x,rack_y,pillar_height,rack_thickness,bolt_width,add_bolts=True,taper_angle=1,bolt_position_corner=1.5):

    #get X and Y dimensions of gride of pipette tips
    X_len = dims[0]*grid_size[0]
    Y_len = dims[1]*grid_size[1]
    #make rack
    rack = solid.cube([rack_x,rack_y,rack_thickness],center=True)
    
    if add_bolts:
    #add bolt holes
        bolt_hole=solid.cylinder(r=bolt_width/2,h=rack_thickness,center=True)()
        bolt_holes = []
        bolt_holes.append(solid.translate([rack_x/2-bolt_position_corner*bolt_width,rack_y/2-bolt_position_corner*bolt_width])(bolt_hole))
        bolt_holes.append(solid.translate([-rack_x/2+bolt_position_corner*bolt_width,rack_y/2-bolt_position_corner*bolt_width])(bolt_hole))
        bolt_holes.append(solid.translate([-rack_x/2+bolt_position_corner*bolt_width,-rack_y/2+bolt_position_corner*bolt_width])(bolt_hole))
        bolt_holes.append(solid.translate([rack_x/2-bolt_position_corner*bolt_width,-rack_y/2+bolt_position_corner*bolt_width])(bolt_hole))
        bolt_holes = solid.union()(*bolt_holes)
        rack=solid.difference()(rack,bolt_holes)
    rack_support = rack

    #center rack with pipette holes
    #rack = solid.translate([0,0,-rack_thickness])(rack)
    rack = solid.translate([X_len/2,Y_len/2])(rack)
    rack = solid.translate([-alignment_offset[0],-alignment_offset[1]])(rack)
    if not taper_angle == 0:
        wells=chamfer_extrude(pillar_height,taper_angle,segments=20)(wells)
    else:
        wells = solid.linear_extrude(height=pillar_height)(wells)
    rack = solid.union()(rack,wells)
    return rack, rack_support

def deg_taper_len(height,deg):
    if not deg == 0:
        return height*math.tan(math.radians(deg))
    else:
        return 0









 
 
************************************************/
